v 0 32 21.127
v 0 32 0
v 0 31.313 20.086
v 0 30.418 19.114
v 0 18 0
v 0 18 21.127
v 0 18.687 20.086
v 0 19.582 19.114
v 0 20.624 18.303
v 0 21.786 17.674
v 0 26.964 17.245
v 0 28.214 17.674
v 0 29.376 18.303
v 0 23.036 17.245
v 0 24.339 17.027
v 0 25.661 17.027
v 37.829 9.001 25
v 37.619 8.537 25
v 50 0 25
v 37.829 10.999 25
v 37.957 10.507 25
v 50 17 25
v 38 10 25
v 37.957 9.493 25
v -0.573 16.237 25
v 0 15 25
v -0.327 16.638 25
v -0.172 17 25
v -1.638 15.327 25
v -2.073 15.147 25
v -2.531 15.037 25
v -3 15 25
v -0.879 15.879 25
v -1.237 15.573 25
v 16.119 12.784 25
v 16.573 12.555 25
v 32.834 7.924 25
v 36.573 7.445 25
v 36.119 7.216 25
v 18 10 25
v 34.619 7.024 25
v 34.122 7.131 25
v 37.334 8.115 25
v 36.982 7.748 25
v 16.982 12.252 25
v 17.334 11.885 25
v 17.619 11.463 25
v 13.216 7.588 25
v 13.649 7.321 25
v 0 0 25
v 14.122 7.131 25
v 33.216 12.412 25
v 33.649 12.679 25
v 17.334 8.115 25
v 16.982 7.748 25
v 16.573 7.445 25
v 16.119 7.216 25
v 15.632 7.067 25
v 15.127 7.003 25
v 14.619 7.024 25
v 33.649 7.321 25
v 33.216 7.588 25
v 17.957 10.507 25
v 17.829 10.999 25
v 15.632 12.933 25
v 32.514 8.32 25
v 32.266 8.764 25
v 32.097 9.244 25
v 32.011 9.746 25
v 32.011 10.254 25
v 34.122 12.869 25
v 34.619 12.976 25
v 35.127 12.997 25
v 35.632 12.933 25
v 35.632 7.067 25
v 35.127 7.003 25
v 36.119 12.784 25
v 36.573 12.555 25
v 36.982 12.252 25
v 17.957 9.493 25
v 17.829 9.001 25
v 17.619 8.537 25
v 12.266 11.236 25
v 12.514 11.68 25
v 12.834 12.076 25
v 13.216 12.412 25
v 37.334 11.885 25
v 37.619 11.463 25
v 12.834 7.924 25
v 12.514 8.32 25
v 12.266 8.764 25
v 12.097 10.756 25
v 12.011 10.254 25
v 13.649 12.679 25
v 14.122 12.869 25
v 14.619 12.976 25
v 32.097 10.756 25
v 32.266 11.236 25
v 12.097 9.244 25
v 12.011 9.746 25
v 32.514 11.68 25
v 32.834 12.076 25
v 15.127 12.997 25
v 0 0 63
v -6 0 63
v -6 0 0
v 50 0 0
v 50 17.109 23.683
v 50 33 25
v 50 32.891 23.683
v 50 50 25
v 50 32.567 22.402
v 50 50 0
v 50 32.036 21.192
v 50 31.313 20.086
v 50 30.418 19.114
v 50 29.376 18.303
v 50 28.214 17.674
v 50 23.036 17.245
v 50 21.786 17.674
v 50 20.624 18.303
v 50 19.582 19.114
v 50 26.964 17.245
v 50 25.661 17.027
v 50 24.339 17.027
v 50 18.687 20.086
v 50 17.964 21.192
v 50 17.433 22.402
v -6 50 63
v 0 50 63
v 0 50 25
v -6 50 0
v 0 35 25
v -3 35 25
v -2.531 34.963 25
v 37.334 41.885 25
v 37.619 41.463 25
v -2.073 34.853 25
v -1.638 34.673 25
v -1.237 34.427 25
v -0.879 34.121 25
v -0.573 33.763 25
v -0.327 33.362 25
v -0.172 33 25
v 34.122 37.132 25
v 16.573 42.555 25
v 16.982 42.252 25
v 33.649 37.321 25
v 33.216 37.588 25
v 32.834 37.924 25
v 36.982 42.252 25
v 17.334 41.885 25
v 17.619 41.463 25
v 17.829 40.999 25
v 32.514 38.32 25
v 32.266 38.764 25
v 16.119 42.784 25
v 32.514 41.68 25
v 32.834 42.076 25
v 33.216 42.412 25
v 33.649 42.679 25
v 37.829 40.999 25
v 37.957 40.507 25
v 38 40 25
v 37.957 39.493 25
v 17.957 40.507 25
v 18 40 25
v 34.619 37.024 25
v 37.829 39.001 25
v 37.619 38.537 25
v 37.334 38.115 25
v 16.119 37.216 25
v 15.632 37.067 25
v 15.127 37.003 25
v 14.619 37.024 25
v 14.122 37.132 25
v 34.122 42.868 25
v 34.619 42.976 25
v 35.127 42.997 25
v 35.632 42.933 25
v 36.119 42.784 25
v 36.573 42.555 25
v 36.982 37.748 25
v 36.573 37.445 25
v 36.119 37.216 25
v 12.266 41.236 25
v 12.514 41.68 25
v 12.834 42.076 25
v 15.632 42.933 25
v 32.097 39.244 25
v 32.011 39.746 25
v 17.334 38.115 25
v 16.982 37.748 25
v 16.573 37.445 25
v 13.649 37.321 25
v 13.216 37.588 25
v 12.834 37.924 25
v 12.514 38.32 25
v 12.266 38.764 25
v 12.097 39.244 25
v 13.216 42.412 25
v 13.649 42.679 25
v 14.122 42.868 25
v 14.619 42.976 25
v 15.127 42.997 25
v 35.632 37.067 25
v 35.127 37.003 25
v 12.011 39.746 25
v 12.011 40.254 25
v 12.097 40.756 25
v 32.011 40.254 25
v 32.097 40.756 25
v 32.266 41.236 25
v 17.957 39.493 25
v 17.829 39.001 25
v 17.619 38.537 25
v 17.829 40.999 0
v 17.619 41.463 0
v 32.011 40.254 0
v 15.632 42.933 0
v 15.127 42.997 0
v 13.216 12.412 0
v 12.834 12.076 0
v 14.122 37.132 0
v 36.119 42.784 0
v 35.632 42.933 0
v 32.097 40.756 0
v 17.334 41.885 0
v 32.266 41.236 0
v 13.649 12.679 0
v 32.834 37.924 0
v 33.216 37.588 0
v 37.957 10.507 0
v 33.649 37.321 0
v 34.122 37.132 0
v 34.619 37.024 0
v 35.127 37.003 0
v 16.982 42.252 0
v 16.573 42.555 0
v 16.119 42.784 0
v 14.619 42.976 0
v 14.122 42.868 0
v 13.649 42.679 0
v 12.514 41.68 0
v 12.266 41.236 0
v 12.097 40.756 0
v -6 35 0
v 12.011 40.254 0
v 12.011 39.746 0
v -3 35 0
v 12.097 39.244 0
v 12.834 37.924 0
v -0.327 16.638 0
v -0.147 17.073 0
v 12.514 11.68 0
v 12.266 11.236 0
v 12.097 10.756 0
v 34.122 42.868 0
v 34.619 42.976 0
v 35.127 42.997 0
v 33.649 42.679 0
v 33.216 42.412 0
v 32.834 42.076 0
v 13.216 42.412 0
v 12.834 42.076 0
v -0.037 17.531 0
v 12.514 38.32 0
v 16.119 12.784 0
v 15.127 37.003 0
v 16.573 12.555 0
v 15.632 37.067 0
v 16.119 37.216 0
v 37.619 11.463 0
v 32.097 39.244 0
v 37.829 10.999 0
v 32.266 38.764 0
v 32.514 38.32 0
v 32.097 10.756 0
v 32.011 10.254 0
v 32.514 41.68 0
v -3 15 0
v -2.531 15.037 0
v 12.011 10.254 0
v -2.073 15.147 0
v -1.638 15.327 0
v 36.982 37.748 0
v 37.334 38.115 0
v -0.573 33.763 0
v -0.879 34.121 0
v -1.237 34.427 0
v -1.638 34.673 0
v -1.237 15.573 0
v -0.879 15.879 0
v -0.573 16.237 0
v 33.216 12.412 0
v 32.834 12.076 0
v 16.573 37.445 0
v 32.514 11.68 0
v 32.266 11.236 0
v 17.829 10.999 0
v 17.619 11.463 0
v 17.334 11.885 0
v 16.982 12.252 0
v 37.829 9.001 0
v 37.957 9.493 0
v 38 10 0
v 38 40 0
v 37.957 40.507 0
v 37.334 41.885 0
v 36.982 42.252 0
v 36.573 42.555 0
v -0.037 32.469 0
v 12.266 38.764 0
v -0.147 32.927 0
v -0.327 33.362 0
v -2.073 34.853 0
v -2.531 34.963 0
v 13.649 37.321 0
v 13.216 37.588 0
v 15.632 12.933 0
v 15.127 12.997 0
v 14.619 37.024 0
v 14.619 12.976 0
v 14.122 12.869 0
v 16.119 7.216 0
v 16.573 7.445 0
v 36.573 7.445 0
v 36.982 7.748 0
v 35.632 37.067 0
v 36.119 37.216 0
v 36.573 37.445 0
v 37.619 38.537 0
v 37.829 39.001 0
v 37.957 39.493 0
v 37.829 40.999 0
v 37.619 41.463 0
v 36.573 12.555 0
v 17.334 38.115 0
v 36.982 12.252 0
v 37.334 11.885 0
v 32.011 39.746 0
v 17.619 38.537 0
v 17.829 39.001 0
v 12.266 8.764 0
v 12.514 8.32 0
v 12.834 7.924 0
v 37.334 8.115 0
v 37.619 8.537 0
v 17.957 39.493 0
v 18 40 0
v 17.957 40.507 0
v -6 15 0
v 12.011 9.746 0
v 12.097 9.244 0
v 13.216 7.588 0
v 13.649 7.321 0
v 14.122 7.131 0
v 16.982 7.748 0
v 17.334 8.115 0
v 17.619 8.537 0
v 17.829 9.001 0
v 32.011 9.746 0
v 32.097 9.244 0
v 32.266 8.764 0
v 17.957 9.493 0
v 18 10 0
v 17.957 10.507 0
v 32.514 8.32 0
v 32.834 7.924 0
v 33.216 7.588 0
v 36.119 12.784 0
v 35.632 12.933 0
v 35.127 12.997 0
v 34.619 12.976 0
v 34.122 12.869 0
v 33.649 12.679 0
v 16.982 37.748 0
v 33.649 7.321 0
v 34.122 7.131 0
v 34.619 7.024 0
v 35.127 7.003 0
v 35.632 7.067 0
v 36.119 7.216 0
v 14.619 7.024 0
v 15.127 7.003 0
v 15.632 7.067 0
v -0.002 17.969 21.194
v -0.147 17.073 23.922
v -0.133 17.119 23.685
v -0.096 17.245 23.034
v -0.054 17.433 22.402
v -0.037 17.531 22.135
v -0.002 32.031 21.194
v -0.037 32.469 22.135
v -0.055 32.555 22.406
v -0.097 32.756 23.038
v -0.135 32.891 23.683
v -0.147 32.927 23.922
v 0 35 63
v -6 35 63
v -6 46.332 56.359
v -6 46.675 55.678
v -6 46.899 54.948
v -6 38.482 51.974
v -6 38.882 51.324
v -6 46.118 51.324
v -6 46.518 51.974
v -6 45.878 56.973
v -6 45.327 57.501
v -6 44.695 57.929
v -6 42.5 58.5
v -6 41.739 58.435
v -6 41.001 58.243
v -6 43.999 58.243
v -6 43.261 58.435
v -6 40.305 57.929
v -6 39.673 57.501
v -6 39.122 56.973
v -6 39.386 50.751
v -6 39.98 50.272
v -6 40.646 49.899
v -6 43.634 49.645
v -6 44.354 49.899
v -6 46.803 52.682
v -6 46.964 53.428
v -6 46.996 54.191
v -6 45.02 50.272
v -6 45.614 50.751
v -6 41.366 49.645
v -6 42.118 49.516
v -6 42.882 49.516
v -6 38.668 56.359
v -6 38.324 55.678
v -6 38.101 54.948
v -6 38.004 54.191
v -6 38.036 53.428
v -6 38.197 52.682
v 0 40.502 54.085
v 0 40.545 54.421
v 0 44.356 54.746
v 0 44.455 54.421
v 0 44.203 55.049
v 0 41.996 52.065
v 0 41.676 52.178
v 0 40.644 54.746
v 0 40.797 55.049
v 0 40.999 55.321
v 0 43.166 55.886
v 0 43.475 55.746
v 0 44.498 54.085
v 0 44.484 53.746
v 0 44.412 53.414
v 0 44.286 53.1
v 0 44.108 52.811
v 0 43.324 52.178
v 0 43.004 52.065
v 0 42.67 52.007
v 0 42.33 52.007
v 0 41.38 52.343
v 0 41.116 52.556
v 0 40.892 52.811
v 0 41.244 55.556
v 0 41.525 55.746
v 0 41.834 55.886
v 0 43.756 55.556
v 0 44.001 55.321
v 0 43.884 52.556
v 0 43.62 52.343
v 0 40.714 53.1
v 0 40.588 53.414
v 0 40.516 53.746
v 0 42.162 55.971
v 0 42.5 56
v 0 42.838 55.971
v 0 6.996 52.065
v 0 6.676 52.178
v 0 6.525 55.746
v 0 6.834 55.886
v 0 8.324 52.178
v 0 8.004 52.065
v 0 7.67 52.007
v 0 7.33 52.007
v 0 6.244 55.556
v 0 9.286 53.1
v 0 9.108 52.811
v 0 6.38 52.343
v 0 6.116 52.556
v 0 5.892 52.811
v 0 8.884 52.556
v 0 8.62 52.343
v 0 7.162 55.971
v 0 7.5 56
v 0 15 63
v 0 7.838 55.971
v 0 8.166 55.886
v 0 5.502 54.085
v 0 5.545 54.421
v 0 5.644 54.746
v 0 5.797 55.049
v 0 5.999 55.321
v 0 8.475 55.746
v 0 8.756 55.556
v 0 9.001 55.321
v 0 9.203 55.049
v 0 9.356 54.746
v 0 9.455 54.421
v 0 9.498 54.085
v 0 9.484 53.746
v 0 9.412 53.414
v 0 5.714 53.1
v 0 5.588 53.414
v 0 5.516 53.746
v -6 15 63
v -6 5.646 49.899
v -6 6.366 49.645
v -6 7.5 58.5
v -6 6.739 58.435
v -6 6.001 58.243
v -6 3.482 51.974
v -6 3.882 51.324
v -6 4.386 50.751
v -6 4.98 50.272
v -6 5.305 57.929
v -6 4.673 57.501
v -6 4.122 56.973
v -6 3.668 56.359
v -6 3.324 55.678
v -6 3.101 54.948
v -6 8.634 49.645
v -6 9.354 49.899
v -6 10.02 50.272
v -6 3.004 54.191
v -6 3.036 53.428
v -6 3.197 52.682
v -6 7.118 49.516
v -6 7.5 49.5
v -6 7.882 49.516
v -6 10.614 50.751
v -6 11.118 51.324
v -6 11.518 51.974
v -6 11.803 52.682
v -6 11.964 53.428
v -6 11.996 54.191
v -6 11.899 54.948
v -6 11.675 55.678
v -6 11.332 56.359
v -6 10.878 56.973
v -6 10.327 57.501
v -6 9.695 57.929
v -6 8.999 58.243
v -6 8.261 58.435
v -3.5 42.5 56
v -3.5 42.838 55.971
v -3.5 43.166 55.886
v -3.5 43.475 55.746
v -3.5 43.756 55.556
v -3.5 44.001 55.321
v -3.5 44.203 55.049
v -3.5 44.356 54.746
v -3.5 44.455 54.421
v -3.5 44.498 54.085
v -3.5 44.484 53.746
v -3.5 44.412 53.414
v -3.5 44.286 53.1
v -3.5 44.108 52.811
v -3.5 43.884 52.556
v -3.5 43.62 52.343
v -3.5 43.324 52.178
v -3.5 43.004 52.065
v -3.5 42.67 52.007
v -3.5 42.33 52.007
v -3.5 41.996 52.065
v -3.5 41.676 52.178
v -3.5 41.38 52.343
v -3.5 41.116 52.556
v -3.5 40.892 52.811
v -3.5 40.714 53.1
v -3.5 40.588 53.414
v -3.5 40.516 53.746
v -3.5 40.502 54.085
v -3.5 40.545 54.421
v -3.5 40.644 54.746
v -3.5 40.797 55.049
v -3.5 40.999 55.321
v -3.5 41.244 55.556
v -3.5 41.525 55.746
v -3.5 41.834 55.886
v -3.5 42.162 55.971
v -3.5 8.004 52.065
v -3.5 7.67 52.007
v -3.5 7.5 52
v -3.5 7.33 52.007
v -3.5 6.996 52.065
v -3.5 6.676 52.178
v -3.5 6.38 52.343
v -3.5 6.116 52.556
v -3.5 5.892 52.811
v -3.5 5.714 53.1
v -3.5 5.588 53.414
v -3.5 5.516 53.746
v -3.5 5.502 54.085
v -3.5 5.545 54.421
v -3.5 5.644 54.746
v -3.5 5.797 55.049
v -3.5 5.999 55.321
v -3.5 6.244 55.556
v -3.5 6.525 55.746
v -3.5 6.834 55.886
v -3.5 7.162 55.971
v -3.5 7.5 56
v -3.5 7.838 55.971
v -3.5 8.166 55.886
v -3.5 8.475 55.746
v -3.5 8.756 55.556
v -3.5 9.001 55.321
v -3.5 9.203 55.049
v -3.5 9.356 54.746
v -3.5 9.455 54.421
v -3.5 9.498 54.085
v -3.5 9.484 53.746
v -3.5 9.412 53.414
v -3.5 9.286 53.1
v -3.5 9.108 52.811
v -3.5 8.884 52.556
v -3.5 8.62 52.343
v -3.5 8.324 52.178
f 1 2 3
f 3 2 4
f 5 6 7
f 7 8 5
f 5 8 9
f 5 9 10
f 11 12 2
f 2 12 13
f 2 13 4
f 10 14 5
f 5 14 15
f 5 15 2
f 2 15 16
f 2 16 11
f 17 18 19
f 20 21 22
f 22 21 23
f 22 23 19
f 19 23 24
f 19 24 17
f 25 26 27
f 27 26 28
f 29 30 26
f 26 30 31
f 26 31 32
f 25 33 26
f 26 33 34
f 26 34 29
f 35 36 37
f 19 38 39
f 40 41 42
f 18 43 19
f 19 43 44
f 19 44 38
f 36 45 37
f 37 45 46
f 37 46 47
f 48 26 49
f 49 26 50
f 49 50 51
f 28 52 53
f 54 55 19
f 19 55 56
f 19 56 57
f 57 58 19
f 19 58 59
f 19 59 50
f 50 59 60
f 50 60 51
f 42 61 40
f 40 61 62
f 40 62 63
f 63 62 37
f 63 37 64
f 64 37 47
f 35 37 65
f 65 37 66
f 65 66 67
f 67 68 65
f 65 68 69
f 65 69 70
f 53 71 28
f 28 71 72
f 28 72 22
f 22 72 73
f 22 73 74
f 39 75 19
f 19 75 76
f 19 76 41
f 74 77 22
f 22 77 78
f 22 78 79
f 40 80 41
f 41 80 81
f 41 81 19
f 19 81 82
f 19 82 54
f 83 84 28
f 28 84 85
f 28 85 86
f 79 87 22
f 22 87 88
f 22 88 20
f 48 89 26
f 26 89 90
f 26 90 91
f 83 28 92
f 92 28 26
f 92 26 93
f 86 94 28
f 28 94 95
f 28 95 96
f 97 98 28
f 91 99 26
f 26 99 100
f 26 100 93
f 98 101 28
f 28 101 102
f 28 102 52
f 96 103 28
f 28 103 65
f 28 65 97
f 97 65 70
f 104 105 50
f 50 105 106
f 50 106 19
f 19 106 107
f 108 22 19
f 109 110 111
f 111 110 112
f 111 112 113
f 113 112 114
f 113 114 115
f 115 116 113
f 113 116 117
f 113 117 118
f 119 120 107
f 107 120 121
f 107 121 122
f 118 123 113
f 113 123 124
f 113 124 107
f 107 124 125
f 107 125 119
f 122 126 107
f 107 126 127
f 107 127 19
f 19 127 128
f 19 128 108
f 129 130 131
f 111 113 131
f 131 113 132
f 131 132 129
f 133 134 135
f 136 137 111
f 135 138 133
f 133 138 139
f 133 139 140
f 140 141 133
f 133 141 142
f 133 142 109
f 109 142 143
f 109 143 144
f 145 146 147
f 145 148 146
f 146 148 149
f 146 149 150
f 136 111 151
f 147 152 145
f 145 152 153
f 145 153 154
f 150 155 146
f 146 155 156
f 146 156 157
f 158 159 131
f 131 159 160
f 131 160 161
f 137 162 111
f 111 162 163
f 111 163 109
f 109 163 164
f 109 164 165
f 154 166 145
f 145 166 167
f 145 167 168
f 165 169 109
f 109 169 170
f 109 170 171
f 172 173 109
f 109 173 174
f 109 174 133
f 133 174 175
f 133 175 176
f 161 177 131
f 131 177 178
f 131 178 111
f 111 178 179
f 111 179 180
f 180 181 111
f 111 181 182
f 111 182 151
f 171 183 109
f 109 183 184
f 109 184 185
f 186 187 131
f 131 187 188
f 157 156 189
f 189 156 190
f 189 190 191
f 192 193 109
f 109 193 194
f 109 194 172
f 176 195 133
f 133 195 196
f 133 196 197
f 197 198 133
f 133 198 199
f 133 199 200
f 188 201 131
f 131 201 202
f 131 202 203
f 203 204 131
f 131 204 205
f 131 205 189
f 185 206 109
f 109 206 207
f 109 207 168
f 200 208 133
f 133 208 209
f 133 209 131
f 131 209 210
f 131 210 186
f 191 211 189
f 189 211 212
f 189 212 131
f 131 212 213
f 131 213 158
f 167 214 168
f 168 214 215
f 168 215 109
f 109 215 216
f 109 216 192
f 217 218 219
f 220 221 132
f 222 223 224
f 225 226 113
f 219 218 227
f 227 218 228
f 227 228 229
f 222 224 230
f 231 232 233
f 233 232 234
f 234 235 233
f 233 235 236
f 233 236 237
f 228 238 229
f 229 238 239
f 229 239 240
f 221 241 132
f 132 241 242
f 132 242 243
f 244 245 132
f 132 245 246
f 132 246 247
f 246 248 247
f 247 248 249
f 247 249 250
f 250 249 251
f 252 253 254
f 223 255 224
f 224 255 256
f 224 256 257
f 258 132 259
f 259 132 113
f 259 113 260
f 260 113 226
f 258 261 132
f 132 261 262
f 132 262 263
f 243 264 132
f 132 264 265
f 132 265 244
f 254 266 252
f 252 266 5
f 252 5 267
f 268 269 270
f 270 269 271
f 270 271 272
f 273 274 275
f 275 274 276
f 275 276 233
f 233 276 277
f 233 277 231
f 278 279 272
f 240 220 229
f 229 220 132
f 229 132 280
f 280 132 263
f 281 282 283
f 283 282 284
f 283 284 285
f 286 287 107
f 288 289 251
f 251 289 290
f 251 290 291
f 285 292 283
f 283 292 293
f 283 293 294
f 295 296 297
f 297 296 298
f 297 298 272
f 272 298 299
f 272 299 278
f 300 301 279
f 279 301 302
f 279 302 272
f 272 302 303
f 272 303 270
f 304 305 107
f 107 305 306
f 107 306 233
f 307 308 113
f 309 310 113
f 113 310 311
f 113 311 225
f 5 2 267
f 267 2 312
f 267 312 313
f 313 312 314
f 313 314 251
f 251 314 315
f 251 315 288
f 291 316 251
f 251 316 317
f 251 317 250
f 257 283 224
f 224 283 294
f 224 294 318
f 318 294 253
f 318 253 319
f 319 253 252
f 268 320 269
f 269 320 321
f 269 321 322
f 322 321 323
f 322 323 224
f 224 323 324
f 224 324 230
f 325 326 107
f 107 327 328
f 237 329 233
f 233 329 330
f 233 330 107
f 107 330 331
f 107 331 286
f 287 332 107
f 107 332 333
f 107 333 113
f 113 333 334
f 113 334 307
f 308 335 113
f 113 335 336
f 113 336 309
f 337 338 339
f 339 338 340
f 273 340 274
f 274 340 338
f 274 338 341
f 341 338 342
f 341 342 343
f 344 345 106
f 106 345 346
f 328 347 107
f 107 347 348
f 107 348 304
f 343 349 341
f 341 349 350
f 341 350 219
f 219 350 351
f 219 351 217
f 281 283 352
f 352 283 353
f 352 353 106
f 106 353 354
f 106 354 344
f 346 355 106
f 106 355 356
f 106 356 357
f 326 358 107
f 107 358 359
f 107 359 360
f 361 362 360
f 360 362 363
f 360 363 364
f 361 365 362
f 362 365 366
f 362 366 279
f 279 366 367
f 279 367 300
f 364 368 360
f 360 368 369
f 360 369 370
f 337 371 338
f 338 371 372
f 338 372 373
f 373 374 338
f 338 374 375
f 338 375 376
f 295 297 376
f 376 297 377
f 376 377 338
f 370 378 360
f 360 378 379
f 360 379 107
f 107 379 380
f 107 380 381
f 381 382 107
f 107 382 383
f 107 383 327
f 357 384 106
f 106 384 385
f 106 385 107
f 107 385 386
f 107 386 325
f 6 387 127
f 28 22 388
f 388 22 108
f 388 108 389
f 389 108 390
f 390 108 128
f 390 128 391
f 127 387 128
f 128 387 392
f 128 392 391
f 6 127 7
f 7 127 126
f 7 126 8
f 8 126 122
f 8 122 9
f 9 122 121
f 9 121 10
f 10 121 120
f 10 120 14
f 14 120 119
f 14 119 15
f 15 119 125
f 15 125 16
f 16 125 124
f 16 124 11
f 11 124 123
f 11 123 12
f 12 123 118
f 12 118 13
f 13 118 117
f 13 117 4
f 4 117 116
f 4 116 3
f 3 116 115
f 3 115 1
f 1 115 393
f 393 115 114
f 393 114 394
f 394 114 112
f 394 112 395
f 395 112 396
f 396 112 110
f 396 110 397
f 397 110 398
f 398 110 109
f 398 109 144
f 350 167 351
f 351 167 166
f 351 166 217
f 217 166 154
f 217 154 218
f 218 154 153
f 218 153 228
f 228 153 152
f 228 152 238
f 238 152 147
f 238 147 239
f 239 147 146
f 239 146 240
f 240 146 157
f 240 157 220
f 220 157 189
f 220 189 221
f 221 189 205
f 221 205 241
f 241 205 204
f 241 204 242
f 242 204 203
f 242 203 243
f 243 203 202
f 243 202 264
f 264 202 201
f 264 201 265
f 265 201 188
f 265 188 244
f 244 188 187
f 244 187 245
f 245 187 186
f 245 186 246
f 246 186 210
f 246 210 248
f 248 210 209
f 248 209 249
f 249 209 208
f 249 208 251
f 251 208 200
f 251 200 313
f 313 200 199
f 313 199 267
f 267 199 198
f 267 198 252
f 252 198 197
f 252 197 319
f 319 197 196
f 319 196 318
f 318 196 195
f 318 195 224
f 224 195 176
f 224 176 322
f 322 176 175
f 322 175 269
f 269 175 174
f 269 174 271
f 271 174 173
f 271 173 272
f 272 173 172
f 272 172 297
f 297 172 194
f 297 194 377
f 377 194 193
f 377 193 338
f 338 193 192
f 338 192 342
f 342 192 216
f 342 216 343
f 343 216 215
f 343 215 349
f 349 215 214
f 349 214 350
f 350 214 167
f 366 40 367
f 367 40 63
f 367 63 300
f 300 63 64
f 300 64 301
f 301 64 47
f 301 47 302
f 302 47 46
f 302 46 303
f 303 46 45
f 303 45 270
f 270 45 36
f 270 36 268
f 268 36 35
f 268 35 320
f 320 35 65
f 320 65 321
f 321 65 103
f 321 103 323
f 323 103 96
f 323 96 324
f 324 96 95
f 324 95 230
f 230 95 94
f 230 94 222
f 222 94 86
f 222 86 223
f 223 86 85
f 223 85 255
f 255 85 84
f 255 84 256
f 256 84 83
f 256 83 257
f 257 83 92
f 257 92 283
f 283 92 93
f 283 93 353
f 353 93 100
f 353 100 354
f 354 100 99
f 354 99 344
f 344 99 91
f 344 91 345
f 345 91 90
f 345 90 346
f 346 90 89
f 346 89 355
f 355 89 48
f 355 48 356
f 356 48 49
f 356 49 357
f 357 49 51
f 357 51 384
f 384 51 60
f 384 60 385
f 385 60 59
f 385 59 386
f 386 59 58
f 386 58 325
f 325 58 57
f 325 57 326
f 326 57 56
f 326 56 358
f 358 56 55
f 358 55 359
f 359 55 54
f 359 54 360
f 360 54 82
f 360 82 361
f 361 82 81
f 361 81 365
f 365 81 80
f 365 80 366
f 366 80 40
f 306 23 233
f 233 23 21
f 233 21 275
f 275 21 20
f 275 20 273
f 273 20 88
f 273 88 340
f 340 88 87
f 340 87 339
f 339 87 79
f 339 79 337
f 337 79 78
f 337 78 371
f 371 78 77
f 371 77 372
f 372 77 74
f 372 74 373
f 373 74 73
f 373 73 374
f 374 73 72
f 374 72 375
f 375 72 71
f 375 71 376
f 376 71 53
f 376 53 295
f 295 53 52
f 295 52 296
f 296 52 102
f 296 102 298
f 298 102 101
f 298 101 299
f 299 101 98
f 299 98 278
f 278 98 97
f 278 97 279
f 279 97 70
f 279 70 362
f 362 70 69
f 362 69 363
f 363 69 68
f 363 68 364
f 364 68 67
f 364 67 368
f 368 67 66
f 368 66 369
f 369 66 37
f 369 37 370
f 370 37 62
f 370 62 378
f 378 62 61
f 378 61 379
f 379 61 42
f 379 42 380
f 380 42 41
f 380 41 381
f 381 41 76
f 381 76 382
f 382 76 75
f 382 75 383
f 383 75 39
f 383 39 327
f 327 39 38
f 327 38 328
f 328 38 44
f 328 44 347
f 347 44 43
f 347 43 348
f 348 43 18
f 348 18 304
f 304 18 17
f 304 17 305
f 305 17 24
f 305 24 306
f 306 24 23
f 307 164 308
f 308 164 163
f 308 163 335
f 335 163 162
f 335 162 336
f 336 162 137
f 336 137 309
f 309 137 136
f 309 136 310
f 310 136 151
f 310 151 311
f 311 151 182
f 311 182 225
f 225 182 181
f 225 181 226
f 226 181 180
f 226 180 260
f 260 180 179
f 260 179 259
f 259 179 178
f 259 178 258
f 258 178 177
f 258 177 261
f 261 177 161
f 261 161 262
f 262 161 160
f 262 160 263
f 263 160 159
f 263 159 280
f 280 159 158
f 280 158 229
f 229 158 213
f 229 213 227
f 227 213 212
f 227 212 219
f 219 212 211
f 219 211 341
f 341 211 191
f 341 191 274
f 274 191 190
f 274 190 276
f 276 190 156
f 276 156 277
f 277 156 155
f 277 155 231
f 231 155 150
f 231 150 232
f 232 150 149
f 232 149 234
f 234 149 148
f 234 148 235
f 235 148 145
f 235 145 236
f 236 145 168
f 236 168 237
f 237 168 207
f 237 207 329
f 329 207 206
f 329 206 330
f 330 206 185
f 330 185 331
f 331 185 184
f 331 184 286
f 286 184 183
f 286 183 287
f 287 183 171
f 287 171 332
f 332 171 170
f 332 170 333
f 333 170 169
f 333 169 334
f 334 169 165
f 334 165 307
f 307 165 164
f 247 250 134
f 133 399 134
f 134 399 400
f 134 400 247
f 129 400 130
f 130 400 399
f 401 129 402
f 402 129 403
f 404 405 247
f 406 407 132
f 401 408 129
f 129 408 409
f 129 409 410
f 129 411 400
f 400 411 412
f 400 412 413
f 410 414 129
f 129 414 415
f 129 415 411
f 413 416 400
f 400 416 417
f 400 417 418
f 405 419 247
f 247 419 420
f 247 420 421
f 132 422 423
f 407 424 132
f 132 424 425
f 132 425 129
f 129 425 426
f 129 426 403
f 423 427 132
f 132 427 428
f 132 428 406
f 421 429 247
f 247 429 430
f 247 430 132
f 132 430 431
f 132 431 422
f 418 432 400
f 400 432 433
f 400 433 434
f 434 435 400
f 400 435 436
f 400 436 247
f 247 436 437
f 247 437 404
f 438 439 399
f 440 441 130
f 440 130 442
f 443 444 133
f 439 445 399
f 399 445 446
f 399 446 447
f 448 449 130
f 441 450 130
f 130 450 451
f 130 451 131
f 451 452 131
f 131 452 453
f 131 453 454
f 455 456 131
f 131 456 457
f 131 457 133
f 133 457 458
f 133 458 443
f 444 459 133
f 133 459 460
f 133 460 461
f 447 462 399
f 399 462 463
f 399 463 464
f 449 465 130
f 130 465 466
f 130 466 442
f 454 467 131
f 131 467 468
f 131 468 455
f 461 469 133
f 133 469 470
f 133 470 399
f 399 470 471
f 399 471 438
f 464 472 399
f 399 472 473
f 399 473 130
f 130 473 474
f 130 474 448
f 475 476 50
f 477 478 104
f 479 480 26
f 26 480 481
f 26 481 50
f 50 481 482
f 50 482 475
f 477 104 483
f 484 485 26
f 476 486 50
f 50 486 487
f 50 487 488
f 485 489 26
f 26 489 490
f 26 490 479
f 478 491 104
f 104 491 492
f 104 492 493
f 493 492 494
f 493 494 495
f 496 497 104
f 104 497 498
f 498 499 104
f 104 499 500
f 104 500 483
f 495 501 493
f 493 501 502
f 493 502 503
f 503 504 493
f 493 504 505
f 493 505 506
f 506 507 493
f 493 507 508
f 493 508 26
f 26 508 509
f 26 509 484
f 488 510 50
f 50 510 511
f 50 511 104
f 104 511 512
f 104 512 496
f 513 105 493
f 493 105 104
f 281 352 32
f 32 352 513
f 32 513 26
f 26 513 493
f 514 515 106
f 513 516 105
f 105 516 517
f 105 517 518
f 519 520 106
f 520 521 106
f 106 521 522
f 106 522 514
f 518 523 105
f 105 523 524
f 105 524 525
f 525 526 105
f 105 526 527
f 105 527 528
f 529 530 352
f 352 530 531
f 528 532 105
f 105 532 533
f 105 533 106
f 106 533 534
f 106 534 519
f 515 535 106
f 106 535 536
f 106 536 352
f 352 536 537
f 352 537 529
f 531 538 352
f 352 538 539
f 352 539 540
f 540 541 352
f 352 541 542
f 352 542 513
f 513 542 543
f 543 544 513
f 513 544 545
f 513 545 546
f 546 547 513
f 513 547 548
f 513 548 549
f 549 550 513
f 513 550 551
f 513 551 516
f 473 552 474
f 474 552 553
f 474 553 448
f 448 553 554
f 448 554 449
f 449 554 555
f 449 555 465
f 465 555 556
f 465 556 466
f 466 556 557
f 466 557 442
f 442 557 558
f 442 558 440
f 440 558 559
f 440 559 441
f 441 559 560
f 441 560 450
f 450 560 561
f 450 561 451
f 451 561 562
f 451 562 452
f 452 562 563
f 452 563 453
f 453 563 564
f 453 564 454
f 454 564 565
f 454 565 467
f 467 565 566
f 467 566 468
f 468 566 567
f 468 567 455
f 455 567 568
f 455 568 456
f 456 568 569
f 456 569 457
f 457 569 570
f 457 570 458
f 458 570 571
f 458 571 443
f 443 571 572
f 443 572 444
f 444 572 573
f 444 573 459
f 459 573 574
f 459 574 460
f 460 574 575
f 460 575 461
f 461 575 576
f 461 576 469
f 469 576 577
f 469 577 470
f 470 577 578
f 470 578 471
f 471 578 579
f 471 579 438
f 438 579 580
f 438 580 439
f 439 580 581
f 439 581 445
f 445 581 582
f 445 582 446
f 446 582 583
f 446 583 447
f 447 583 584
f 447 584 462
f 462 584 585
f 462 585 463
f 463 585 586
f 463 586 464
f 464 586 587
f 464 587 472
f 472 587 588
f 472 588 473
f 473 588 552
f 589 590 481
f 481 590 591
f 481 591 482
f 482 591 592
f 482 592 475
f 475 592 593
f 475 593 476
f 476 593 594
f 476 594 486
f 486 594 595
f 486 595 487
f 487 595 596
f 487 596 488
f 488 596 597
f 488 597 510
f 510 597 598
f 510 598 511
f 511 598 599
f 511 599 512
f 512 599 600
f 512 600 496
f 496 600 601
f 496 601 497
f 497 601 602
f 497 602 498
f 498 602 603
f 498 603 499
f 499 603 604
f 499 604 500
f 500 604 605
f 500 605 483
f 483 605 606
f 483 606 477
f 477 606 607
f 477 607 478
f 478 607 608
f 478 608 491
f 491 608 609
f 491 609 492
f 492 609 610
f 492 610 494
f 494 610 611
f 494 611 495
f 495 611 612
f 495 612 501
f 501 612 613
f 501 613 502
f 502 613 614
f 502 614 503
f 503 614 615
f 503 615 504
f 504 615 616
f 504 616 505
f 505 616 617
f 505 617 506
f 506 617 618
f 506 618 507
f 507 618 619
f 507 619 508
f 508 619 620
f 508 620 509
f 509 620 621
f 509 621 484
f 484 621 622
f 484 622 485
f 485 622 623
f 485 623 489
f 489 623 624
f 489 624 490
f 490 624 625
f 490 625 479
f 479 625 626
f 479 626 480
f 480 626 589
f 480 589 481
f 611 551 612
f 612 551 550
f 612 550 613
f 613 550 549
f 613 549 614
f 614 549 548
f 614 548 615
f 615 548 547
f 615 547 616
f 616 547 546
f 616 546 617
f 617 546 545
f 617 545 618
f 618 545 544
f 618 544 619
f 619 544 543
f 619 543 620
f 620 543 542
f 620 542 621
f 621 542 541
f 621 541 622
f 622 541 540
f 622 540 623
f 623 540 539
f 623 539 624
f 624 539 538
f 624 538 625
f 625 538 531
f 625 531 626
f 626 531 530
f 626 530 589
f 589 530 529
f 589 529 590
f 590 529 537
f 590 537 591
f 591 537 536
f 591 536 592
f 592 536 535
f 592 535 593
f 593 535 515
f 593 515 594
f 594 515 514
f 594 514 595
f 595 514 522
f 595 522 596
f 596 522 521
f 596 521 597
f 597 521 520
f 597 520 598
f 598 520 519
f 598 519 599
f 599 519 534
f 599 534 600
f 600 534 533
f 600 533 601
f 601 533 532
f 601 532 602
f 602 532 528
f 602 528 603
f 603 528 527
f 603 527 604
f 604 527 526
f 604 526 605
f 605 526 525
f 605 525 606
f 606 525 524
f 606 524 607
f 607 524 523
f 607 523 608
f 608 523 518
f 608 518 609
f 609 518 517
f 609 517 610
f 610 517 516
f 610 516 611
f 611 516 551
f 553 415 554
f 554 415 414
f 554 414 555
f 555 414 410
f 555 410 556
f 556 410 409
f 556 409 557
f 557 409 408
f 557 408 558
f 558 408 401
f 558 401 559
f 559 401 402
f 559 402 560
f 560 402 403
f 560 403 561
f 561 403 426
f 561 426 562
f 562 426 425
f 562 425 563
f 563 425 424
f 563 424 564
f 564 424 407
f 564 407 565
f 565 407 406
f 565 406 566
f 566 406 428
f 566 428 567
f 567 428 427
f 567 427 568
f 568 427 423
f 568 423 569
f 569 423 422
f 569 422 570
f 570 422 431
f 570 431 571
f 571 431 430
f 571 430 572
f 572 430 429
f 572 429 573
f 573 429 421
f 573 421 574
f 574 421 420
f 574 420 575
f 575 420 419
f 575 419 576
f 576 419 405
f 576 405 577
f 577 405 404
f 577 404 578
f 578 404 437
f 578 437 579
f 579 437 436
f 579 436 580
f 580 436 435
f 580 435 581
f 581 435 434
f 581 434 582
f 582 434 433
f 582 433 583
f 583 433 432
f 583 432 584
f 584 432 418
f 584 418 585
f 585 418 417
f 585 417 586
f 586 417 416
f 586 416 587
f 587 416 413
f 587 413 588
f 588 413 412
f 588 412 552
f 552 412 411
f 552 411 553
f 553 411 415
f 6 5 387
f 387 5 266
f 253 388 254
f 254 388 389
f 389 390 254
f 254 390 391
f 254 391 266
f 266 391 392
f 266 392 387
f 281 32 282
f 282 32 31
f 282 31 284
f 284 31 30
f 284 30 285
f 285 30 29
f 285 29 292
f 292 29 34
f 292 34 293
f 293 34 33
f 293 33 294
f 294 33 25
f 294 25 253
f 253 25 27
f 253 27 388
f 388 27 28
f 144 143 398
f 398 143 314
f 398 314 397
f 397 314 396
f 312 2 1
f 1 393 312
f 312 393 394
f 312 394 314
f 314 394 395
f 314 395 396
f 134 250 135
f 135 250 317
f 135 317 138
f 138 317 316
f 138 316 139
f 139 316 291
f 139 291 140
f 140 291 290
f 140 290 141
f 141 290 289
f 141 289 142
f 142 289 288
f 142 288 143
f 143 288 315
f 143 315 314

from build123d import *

# Parameters (mm, degrees)
SKETCH1_W           = 50
SKETCH1_H           = 50
BOSS_EXTRUDE1_DEPTH = 25
SKETCH2_R           = 8
CUT_EXTRUDE1_DEPTH  = 58
SKETCH3_R           = 3
CUT_EXTRUDE2_DEPTH  = 25
SKETCH4_W           = 63
SKETCH4_H           = 15
BOSS_EXTRUDE2_DEPTH = 6
SKETCH5_R           = 2
CUT_EXTRUDE3_DEPTH  = 6
CHAMFER1_SIZE       = 2.5
FILLET1_R           = 3


with BuildPart() as part:
    # Sketch1 → Boss-Extrude1 (new body)
    with BuildSketch(Plane.XY):
        with Locations((25, 25)):
            Rectangle(SKETCH1_W, SKETCH1_H)
    extrude(amount=BOSS_EXTRUDE1_DEPTH)

    # Sketch2 → Cut-Extrude1 (cut)
    with BuildSketch(Plane.ZY):
        with Locations((25, 25)):
            Circle(SKETCH2_R)
    extrude(amount=-CUT_EXTRUDE1_DEPTH, mode=Mode.SUBTRACT)

    # Sketch3 → Cut-Extrude2 (cut)
    with BuildSketch(Plane.XY.offset(25)):
        with Locations((15, 40)):
            Circle(SKETCH3_R)
        with Locations((35, 40)):
            Circle(SKETCH3_R)
        with Locations((35, 10)):
            Circle(SKETCH3_R)
        with Locations((15, 10)):
            Circle(SKETCH3_R)
    extrude(amount=-CUT_EXTRUDE2_DEPTH, mode=Mode.SUBTRACT)

    # Sketch4 → Boss-Extrude2 (add)
    with BuildSketch(Plane.ZY):
        with Locations((31.5, 42.5)):
            Rectangle(SKETCH4_W, SKETCH4_H)
        with Locations((31.5, 7.5)):
            Rectangle(SKETCH4_W, SKETCH4_H)
    extrude(amount=BOSS_EXTRUDE2_DEPTH)

    # Sketch5 → Cut-Extrude3 (cut)
    with BuildSketch(Plane.ZY.offset(6)):
        with Locations((54, 42.5)):
            Circle(SKETCH5_R)
        with Locations((54, 7.5)):
            Circle(SKETCH5_R)
    extrude(amount=-CUT_EXTRUDE3_DEPTH, mode=Mode.SUBTRACT)

    # Chamfer1
    chamfer1_edges = [part.edges().sort_by_distance(p)[0] for p in [
        (-6, 42.5, 52),
        (-6, 7.5, 52),
    ]]
    chamfer(chamfer1_edges, length=CHAMFER1_SIZE)

    # Fillet1
    # the kernel refuses this fillet: 3 mm, written as the material it adds along each edge
    with BuildSketch(Plane(origin=(0, 15, 25), x_dir=(-1, 0, 0), z_dir=(0, 0, -1))) as fillet1_piece_1_section:
        with BuildLine():
            CenterArc((FILLET1_R, FILLET1_R), FILLET1_R, 180, 90)
            Line((0, FILLET1_R), (0, 0))
            Line((0, 0), (FILLET1_R, 0))
        make_face()
    fillet1_piece_1 = extrude(amount=25, mode=Mode.PRIVATE)
    fillet1_piece_1 = fillet1_piece_1 - Plane(origin=(-0.671433756, 25, 25), x_dir=(0, 0, 1), z_dir=(-1, 0, 0)) * Cylinder(8, 62, mode=Mode.PRIVATE)
    add(fillet1_piece_1)
    with BuildSketch(Plane(origin=(0, 35, 25), x_dir=(-1, 0, 0), z_dir=(0, 0, -1))) as fillet1_piece_2_section:
        with BuildLine():
            CenterArc((FILLET1_R, -FILLET1_R), FILLET1_R, 90, 90)
            Line((0, -FILLET1_R), (0, 0))
            Line((0, 0), (FILLET1_R, 0))
        make_face()
    fillet1_piece_2 = extrude(amount=25, mode=Mode.PRIVATE)
    fillet1_piece_2 = fillet1_piece_2 - Plane(origin=(-0.671433756, 25, 25), x_dir=(0, 0, 1), z_dir=(-1, 0, 0)) * Cylinder(8, 62, mode=Mode.PRIVATE)
    add(fillet1_piece_2)


solid = part.part
